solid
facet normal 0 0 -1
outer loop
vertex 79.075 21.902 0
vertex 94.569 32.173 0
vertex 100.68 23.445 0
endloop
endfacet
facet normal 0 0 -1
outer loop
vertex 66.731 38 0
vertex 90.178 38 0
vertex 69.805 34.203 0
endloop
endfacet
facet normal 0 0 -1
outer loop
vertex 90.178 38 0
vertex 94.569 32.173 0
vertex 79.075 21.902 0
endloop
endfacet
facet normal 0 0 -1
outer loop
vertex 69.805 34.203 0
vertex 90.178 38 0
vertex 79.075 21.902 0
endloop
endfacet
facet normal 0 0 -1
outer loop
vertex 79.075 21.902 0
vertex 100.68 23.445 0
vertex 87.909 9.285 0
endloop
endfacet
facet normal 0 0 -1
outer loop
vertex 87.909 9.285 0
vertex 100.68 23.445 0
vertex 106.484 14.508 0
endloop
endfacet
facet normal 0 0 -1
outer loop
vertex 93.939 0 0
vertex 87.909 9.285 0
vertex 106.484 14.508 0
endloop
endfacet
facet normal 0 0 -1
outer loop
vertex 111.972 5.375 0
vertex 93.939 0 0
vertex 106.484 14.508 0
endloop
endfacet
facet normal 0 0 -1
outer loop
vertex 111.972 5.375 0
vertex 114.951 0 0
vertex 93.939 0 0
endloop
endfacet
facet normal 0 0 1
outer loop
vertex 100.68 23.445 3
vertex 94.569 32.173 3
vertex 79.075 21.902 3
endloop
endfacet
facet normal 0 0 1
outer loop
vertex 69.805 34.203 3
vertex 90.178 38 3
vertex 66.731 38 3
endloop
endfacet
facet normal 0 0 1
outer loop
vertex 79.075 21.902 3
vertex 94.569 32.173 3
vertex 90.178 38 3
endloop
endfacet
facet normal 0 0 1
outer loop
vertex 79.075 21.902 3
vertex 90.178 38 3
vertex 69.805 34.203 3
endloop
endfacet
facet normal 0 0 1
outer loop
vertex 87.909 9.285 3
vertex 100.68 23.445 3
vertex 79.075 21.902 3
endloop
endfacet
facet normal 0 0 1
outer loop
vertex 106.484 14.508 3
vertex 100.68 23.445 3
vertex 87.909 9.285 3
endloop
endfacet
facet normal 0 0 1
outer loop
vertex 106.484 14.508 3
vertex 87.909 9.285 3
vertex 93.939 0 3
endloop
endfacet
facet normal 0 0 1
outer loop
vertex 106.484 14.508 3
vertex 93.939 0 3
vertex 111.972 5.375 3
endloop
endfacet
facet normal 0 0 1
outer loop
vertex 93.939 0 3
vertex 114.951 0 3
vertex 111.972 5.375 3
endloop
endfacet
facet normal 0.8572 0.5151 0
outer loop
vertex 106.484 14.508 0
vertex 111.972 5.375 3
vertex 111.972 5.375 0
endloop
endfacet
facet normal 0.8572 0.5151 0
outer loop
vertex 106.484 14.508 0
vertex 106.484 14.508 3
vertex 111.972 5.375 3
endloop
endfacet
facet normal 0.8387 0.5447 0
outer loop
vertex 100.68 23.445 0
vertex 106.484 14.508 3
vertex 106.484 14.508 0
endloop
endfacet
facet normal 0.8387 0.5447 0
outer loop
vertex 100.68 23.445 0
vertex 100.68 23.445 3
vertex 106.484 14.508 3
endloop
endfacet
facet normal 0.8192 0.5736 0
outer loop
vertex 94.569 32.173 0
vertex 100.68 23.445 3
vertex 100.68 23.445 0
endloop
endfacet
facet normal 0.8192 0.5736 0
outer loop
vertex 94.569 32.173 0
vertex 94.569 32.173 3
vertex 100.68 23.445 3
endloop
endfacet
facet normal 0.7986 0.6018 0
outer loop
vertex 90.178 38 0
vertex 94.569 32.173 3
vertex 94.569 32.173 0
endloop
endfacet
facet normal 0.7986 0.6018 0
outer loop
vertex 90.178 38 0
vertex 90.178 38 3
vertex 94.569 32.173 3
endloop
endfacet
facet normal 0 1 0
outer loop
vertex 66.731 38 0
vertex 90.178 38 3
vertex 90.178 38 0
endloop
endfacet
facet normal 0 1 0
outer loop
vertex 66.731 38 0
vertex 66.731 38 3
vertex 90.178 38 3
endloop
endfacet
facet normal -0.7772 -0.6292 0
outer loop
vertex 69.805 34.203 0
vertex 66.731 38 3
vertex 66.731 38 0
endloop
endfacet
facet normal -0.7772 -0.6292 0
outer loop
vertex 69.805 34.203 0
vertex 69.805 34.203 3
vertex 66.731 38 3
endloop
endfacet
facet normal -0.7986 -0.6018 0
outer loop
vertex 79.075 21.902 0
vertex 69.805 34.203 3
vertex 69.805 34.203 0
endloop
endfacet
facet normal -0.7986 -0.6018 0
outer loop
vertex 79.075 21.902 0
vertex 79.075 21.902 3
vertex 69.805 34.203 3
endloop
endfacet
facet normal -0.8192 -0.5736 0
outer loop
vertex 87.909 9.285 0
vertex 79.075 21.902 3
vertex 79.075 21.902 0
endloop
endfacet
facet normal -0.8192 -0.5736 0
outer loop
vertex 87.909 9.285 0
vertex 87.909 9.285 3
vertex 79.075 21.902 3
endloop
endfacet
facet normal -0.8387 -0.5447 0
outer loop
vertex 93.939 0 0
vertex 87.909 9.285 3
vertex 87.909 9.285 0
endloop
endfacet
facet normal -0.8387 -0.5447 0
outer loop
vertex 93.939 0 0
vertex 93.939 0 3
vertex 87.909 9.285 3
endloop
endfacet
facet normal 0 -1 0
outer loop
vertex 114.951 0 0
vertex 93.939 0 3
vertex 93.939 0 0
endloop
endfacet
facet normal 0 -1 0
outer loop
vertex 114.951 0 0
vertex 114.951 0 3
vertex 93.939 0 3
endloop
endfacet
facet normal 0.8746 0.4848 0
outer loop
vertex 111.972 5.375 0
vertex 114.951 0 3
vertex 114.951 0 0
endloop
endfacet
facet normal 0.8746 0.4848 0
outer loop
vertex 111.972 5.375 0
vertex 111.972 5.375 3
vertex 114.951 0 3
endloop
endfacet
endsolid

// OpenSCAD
//(-152.3987341772152, -147.2594936708861)
//'305.26618141514257

circle_radius = 305.27;
circle_center = [-152.4, -147.26, 0];

width = 30;

linear_extrude(3)
difference() {
    translate(circle_center)
    circle(circle_radius, $fn=180);
    
    // inner circle
    //(-242.92, -229.67)
    // 409.4
    translate([-277.92, -237.47])
    circle(441.27, $fn=180);
    
    // remove everything on the negative x-axis
    translate([-circle_radius * 2, -circle_radius * 2, 0])
    square([circle_radius * 2, circle_radius * 4]);
    
    // remove everything on the negative y-axis
    translate([0, -circle_radius * 2])
    square(circle_radius * 2);
    
    // slicing height
    translate([0, 38])
    square(circle_radius * 2);
    
    //square([110 - width, 38]);
}
